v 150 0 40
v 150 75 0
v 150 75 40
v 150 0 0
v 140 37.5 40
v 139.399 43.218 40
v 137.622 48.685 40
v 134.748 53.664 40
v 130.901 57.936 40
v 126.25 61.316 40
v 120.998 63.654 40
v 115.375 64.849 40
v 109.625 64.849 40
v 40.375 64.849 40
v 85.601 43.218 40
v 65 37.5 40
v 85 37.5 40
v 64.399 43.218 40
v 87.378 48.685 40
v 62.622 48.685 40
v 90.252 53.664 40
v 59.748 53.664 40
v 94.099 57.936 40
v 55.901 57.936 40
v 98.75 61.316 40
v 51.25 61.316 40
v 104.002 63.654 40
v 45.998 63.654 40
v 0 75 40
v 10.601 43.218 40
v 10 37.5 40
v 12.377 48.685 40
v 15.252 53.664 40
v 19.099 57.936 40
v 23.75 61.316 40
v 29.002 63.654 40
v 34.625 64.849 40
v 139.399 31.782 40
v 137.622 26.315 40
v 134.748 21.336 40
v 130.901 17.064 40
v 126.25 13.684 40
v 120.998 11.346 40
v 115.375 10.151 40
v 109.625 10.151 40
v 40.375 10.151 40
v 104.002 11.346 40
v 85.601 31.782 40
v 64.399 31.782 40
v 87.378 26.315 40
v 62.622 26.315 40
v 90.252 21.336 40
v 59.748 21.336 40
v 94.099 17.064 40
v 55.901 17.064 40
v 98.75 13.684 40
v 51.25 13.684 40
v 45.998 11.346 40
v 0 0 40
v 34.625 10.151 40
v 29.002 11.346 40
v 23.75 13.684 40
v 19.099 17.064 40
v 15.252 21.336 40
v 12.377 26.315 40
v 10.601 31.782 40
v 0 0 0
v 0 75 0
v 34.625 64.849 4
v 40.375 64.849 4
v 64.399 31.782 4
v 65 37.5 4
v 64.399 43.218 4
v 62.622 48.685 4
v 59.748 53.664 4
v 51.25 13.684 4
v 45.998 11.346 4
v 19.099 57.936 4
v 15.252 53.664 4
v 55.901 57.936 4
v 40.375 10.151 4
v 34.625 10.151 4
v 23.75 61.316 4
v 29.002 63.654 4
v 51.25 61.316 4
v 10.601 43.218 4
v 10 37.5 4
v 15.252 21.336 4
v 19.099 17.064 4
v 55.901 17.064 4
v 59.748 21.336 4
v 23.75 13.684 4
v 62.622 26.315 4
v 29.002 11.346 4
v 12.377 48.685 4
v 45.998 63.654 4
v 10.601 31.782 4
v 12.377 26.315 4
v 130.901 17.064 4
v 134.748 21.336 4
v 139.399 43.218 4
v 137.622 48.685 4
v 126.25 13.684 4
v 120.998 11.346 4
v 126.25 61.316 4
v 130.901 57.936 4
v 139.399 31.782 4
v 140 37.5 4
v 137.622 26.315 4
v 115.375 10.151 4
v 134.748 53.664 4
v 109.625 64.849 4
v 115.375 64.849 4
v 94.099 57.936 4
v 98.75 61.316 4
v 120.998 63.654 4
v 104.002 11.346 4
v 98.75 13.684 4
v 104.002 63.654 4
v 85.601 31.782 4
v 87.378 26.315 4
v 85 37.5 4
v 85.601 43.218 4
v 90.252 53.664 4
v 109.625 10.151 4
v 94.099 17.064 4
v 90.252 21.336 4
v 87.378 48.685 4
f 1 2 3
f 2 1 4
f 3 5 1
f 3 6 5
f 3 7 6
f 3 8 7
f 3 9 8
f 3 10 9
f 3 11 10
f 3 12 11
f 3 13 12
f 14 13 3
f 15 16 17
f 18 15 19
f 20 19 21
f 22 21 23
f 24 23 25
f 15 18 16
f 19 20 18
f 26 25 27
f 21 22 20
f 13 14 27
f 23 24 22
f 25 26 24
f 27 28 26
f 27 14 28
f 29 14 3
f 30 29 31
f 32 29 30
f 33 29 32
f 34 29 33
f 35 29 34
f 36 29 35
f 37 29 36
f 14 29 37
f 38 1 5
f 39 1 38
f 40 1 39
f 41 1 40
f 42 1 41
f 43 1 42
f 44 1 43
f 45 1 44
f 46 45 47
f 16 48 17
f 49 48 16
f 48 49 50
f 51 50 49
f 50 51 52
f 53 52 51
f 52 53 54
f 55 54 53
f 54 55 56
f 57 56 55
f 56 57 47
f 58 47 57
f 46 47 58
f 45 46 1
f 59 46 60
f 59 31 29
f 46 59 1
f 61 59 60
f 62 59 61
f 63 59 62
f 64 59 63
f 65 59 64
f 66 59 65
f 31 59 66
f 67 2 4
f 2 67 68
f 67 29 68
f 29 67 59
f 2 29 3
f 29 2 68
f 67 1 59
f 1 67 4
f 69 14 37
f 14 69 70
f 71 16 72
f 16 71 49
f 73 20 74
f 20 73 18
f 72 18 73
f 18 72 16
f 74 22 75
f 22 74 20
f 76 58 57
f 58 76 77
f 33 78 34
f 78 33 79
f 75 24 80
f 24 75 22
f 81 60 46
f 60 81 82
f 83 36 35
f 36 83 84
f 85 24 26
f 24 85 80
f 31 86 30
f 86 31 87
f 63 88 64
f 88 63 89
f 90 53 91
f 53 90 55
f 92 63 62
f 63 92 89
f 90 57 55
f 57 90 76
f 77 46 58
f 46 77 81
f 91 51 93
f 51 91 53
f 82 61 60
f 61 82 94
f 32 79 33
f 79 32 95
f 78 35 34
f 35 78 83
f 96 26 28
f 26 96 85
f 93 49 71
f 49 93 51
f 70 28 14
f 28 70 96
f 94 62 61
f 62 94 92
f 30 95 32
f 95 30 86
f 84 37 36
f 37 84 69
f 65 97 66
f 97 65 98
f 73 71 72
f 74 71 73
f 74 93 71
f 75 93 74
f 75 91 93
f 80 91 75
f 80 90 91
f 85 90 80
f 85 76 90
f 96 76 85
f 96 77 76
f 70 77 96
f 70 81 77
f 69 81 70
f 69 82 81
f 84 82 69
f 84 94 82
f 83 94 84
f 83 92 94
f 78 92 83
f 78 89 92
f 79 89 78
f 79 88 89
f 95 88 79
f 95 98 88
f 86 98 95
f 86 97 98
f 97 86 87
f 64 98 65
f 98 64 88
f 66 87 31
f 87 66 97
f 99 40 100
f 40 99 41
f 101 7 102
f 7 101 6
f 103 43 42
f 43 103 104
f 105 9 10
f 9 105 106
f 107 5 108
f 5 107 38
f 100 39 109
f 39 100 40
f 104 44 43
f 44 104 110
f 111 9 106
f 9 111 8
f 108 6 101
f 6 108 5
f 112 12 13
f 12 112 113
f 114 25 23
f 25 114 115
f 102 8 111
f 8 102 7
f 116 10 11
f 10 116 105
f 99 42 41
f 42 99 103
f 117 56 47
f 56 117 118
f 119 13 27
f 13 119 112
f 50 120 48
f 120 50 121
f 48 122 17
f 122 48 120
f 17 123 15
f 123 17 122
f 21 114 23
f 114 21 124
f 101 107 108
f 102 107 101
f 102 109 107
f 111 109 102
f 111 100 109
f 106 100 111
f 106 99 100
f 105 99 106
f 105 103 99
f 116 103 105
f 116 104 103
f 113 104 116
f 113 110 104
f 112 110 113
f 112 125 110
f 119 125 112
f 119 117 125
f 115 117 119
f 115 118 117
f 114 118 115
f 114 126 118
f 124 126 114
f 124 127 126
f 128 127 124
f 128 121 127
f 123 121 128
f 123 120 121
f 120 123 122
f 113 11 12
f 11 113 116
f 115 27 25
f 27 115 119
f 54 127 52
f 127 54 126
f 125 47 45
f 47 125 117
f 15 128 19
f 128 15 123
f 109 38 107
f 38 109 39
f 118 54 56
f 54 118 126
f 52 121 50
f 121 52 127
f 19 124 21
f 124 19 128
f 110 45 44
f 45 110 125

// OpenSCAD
difference() {
    cube([150, 75, 40]);
    translate([37.5, 37.5, 4]) {
        cylinder(h = 40, d = 55);
        };
    translate([112.5, 37.5, 4]) {
        cylinder(h = 40, d = 55);
    };

};

/*
Holder for 'Cooks Professional' Electric Salt/Pepper Mills

Mill Actual Diameter = 52.3mm
Cutout Cylinder Diameter = 55mm
Cutout Cylinder Depth = 36mm

Global padding = 10mm
Mill Separation = 20mm

Creation Date: 2023-09-30
*/
